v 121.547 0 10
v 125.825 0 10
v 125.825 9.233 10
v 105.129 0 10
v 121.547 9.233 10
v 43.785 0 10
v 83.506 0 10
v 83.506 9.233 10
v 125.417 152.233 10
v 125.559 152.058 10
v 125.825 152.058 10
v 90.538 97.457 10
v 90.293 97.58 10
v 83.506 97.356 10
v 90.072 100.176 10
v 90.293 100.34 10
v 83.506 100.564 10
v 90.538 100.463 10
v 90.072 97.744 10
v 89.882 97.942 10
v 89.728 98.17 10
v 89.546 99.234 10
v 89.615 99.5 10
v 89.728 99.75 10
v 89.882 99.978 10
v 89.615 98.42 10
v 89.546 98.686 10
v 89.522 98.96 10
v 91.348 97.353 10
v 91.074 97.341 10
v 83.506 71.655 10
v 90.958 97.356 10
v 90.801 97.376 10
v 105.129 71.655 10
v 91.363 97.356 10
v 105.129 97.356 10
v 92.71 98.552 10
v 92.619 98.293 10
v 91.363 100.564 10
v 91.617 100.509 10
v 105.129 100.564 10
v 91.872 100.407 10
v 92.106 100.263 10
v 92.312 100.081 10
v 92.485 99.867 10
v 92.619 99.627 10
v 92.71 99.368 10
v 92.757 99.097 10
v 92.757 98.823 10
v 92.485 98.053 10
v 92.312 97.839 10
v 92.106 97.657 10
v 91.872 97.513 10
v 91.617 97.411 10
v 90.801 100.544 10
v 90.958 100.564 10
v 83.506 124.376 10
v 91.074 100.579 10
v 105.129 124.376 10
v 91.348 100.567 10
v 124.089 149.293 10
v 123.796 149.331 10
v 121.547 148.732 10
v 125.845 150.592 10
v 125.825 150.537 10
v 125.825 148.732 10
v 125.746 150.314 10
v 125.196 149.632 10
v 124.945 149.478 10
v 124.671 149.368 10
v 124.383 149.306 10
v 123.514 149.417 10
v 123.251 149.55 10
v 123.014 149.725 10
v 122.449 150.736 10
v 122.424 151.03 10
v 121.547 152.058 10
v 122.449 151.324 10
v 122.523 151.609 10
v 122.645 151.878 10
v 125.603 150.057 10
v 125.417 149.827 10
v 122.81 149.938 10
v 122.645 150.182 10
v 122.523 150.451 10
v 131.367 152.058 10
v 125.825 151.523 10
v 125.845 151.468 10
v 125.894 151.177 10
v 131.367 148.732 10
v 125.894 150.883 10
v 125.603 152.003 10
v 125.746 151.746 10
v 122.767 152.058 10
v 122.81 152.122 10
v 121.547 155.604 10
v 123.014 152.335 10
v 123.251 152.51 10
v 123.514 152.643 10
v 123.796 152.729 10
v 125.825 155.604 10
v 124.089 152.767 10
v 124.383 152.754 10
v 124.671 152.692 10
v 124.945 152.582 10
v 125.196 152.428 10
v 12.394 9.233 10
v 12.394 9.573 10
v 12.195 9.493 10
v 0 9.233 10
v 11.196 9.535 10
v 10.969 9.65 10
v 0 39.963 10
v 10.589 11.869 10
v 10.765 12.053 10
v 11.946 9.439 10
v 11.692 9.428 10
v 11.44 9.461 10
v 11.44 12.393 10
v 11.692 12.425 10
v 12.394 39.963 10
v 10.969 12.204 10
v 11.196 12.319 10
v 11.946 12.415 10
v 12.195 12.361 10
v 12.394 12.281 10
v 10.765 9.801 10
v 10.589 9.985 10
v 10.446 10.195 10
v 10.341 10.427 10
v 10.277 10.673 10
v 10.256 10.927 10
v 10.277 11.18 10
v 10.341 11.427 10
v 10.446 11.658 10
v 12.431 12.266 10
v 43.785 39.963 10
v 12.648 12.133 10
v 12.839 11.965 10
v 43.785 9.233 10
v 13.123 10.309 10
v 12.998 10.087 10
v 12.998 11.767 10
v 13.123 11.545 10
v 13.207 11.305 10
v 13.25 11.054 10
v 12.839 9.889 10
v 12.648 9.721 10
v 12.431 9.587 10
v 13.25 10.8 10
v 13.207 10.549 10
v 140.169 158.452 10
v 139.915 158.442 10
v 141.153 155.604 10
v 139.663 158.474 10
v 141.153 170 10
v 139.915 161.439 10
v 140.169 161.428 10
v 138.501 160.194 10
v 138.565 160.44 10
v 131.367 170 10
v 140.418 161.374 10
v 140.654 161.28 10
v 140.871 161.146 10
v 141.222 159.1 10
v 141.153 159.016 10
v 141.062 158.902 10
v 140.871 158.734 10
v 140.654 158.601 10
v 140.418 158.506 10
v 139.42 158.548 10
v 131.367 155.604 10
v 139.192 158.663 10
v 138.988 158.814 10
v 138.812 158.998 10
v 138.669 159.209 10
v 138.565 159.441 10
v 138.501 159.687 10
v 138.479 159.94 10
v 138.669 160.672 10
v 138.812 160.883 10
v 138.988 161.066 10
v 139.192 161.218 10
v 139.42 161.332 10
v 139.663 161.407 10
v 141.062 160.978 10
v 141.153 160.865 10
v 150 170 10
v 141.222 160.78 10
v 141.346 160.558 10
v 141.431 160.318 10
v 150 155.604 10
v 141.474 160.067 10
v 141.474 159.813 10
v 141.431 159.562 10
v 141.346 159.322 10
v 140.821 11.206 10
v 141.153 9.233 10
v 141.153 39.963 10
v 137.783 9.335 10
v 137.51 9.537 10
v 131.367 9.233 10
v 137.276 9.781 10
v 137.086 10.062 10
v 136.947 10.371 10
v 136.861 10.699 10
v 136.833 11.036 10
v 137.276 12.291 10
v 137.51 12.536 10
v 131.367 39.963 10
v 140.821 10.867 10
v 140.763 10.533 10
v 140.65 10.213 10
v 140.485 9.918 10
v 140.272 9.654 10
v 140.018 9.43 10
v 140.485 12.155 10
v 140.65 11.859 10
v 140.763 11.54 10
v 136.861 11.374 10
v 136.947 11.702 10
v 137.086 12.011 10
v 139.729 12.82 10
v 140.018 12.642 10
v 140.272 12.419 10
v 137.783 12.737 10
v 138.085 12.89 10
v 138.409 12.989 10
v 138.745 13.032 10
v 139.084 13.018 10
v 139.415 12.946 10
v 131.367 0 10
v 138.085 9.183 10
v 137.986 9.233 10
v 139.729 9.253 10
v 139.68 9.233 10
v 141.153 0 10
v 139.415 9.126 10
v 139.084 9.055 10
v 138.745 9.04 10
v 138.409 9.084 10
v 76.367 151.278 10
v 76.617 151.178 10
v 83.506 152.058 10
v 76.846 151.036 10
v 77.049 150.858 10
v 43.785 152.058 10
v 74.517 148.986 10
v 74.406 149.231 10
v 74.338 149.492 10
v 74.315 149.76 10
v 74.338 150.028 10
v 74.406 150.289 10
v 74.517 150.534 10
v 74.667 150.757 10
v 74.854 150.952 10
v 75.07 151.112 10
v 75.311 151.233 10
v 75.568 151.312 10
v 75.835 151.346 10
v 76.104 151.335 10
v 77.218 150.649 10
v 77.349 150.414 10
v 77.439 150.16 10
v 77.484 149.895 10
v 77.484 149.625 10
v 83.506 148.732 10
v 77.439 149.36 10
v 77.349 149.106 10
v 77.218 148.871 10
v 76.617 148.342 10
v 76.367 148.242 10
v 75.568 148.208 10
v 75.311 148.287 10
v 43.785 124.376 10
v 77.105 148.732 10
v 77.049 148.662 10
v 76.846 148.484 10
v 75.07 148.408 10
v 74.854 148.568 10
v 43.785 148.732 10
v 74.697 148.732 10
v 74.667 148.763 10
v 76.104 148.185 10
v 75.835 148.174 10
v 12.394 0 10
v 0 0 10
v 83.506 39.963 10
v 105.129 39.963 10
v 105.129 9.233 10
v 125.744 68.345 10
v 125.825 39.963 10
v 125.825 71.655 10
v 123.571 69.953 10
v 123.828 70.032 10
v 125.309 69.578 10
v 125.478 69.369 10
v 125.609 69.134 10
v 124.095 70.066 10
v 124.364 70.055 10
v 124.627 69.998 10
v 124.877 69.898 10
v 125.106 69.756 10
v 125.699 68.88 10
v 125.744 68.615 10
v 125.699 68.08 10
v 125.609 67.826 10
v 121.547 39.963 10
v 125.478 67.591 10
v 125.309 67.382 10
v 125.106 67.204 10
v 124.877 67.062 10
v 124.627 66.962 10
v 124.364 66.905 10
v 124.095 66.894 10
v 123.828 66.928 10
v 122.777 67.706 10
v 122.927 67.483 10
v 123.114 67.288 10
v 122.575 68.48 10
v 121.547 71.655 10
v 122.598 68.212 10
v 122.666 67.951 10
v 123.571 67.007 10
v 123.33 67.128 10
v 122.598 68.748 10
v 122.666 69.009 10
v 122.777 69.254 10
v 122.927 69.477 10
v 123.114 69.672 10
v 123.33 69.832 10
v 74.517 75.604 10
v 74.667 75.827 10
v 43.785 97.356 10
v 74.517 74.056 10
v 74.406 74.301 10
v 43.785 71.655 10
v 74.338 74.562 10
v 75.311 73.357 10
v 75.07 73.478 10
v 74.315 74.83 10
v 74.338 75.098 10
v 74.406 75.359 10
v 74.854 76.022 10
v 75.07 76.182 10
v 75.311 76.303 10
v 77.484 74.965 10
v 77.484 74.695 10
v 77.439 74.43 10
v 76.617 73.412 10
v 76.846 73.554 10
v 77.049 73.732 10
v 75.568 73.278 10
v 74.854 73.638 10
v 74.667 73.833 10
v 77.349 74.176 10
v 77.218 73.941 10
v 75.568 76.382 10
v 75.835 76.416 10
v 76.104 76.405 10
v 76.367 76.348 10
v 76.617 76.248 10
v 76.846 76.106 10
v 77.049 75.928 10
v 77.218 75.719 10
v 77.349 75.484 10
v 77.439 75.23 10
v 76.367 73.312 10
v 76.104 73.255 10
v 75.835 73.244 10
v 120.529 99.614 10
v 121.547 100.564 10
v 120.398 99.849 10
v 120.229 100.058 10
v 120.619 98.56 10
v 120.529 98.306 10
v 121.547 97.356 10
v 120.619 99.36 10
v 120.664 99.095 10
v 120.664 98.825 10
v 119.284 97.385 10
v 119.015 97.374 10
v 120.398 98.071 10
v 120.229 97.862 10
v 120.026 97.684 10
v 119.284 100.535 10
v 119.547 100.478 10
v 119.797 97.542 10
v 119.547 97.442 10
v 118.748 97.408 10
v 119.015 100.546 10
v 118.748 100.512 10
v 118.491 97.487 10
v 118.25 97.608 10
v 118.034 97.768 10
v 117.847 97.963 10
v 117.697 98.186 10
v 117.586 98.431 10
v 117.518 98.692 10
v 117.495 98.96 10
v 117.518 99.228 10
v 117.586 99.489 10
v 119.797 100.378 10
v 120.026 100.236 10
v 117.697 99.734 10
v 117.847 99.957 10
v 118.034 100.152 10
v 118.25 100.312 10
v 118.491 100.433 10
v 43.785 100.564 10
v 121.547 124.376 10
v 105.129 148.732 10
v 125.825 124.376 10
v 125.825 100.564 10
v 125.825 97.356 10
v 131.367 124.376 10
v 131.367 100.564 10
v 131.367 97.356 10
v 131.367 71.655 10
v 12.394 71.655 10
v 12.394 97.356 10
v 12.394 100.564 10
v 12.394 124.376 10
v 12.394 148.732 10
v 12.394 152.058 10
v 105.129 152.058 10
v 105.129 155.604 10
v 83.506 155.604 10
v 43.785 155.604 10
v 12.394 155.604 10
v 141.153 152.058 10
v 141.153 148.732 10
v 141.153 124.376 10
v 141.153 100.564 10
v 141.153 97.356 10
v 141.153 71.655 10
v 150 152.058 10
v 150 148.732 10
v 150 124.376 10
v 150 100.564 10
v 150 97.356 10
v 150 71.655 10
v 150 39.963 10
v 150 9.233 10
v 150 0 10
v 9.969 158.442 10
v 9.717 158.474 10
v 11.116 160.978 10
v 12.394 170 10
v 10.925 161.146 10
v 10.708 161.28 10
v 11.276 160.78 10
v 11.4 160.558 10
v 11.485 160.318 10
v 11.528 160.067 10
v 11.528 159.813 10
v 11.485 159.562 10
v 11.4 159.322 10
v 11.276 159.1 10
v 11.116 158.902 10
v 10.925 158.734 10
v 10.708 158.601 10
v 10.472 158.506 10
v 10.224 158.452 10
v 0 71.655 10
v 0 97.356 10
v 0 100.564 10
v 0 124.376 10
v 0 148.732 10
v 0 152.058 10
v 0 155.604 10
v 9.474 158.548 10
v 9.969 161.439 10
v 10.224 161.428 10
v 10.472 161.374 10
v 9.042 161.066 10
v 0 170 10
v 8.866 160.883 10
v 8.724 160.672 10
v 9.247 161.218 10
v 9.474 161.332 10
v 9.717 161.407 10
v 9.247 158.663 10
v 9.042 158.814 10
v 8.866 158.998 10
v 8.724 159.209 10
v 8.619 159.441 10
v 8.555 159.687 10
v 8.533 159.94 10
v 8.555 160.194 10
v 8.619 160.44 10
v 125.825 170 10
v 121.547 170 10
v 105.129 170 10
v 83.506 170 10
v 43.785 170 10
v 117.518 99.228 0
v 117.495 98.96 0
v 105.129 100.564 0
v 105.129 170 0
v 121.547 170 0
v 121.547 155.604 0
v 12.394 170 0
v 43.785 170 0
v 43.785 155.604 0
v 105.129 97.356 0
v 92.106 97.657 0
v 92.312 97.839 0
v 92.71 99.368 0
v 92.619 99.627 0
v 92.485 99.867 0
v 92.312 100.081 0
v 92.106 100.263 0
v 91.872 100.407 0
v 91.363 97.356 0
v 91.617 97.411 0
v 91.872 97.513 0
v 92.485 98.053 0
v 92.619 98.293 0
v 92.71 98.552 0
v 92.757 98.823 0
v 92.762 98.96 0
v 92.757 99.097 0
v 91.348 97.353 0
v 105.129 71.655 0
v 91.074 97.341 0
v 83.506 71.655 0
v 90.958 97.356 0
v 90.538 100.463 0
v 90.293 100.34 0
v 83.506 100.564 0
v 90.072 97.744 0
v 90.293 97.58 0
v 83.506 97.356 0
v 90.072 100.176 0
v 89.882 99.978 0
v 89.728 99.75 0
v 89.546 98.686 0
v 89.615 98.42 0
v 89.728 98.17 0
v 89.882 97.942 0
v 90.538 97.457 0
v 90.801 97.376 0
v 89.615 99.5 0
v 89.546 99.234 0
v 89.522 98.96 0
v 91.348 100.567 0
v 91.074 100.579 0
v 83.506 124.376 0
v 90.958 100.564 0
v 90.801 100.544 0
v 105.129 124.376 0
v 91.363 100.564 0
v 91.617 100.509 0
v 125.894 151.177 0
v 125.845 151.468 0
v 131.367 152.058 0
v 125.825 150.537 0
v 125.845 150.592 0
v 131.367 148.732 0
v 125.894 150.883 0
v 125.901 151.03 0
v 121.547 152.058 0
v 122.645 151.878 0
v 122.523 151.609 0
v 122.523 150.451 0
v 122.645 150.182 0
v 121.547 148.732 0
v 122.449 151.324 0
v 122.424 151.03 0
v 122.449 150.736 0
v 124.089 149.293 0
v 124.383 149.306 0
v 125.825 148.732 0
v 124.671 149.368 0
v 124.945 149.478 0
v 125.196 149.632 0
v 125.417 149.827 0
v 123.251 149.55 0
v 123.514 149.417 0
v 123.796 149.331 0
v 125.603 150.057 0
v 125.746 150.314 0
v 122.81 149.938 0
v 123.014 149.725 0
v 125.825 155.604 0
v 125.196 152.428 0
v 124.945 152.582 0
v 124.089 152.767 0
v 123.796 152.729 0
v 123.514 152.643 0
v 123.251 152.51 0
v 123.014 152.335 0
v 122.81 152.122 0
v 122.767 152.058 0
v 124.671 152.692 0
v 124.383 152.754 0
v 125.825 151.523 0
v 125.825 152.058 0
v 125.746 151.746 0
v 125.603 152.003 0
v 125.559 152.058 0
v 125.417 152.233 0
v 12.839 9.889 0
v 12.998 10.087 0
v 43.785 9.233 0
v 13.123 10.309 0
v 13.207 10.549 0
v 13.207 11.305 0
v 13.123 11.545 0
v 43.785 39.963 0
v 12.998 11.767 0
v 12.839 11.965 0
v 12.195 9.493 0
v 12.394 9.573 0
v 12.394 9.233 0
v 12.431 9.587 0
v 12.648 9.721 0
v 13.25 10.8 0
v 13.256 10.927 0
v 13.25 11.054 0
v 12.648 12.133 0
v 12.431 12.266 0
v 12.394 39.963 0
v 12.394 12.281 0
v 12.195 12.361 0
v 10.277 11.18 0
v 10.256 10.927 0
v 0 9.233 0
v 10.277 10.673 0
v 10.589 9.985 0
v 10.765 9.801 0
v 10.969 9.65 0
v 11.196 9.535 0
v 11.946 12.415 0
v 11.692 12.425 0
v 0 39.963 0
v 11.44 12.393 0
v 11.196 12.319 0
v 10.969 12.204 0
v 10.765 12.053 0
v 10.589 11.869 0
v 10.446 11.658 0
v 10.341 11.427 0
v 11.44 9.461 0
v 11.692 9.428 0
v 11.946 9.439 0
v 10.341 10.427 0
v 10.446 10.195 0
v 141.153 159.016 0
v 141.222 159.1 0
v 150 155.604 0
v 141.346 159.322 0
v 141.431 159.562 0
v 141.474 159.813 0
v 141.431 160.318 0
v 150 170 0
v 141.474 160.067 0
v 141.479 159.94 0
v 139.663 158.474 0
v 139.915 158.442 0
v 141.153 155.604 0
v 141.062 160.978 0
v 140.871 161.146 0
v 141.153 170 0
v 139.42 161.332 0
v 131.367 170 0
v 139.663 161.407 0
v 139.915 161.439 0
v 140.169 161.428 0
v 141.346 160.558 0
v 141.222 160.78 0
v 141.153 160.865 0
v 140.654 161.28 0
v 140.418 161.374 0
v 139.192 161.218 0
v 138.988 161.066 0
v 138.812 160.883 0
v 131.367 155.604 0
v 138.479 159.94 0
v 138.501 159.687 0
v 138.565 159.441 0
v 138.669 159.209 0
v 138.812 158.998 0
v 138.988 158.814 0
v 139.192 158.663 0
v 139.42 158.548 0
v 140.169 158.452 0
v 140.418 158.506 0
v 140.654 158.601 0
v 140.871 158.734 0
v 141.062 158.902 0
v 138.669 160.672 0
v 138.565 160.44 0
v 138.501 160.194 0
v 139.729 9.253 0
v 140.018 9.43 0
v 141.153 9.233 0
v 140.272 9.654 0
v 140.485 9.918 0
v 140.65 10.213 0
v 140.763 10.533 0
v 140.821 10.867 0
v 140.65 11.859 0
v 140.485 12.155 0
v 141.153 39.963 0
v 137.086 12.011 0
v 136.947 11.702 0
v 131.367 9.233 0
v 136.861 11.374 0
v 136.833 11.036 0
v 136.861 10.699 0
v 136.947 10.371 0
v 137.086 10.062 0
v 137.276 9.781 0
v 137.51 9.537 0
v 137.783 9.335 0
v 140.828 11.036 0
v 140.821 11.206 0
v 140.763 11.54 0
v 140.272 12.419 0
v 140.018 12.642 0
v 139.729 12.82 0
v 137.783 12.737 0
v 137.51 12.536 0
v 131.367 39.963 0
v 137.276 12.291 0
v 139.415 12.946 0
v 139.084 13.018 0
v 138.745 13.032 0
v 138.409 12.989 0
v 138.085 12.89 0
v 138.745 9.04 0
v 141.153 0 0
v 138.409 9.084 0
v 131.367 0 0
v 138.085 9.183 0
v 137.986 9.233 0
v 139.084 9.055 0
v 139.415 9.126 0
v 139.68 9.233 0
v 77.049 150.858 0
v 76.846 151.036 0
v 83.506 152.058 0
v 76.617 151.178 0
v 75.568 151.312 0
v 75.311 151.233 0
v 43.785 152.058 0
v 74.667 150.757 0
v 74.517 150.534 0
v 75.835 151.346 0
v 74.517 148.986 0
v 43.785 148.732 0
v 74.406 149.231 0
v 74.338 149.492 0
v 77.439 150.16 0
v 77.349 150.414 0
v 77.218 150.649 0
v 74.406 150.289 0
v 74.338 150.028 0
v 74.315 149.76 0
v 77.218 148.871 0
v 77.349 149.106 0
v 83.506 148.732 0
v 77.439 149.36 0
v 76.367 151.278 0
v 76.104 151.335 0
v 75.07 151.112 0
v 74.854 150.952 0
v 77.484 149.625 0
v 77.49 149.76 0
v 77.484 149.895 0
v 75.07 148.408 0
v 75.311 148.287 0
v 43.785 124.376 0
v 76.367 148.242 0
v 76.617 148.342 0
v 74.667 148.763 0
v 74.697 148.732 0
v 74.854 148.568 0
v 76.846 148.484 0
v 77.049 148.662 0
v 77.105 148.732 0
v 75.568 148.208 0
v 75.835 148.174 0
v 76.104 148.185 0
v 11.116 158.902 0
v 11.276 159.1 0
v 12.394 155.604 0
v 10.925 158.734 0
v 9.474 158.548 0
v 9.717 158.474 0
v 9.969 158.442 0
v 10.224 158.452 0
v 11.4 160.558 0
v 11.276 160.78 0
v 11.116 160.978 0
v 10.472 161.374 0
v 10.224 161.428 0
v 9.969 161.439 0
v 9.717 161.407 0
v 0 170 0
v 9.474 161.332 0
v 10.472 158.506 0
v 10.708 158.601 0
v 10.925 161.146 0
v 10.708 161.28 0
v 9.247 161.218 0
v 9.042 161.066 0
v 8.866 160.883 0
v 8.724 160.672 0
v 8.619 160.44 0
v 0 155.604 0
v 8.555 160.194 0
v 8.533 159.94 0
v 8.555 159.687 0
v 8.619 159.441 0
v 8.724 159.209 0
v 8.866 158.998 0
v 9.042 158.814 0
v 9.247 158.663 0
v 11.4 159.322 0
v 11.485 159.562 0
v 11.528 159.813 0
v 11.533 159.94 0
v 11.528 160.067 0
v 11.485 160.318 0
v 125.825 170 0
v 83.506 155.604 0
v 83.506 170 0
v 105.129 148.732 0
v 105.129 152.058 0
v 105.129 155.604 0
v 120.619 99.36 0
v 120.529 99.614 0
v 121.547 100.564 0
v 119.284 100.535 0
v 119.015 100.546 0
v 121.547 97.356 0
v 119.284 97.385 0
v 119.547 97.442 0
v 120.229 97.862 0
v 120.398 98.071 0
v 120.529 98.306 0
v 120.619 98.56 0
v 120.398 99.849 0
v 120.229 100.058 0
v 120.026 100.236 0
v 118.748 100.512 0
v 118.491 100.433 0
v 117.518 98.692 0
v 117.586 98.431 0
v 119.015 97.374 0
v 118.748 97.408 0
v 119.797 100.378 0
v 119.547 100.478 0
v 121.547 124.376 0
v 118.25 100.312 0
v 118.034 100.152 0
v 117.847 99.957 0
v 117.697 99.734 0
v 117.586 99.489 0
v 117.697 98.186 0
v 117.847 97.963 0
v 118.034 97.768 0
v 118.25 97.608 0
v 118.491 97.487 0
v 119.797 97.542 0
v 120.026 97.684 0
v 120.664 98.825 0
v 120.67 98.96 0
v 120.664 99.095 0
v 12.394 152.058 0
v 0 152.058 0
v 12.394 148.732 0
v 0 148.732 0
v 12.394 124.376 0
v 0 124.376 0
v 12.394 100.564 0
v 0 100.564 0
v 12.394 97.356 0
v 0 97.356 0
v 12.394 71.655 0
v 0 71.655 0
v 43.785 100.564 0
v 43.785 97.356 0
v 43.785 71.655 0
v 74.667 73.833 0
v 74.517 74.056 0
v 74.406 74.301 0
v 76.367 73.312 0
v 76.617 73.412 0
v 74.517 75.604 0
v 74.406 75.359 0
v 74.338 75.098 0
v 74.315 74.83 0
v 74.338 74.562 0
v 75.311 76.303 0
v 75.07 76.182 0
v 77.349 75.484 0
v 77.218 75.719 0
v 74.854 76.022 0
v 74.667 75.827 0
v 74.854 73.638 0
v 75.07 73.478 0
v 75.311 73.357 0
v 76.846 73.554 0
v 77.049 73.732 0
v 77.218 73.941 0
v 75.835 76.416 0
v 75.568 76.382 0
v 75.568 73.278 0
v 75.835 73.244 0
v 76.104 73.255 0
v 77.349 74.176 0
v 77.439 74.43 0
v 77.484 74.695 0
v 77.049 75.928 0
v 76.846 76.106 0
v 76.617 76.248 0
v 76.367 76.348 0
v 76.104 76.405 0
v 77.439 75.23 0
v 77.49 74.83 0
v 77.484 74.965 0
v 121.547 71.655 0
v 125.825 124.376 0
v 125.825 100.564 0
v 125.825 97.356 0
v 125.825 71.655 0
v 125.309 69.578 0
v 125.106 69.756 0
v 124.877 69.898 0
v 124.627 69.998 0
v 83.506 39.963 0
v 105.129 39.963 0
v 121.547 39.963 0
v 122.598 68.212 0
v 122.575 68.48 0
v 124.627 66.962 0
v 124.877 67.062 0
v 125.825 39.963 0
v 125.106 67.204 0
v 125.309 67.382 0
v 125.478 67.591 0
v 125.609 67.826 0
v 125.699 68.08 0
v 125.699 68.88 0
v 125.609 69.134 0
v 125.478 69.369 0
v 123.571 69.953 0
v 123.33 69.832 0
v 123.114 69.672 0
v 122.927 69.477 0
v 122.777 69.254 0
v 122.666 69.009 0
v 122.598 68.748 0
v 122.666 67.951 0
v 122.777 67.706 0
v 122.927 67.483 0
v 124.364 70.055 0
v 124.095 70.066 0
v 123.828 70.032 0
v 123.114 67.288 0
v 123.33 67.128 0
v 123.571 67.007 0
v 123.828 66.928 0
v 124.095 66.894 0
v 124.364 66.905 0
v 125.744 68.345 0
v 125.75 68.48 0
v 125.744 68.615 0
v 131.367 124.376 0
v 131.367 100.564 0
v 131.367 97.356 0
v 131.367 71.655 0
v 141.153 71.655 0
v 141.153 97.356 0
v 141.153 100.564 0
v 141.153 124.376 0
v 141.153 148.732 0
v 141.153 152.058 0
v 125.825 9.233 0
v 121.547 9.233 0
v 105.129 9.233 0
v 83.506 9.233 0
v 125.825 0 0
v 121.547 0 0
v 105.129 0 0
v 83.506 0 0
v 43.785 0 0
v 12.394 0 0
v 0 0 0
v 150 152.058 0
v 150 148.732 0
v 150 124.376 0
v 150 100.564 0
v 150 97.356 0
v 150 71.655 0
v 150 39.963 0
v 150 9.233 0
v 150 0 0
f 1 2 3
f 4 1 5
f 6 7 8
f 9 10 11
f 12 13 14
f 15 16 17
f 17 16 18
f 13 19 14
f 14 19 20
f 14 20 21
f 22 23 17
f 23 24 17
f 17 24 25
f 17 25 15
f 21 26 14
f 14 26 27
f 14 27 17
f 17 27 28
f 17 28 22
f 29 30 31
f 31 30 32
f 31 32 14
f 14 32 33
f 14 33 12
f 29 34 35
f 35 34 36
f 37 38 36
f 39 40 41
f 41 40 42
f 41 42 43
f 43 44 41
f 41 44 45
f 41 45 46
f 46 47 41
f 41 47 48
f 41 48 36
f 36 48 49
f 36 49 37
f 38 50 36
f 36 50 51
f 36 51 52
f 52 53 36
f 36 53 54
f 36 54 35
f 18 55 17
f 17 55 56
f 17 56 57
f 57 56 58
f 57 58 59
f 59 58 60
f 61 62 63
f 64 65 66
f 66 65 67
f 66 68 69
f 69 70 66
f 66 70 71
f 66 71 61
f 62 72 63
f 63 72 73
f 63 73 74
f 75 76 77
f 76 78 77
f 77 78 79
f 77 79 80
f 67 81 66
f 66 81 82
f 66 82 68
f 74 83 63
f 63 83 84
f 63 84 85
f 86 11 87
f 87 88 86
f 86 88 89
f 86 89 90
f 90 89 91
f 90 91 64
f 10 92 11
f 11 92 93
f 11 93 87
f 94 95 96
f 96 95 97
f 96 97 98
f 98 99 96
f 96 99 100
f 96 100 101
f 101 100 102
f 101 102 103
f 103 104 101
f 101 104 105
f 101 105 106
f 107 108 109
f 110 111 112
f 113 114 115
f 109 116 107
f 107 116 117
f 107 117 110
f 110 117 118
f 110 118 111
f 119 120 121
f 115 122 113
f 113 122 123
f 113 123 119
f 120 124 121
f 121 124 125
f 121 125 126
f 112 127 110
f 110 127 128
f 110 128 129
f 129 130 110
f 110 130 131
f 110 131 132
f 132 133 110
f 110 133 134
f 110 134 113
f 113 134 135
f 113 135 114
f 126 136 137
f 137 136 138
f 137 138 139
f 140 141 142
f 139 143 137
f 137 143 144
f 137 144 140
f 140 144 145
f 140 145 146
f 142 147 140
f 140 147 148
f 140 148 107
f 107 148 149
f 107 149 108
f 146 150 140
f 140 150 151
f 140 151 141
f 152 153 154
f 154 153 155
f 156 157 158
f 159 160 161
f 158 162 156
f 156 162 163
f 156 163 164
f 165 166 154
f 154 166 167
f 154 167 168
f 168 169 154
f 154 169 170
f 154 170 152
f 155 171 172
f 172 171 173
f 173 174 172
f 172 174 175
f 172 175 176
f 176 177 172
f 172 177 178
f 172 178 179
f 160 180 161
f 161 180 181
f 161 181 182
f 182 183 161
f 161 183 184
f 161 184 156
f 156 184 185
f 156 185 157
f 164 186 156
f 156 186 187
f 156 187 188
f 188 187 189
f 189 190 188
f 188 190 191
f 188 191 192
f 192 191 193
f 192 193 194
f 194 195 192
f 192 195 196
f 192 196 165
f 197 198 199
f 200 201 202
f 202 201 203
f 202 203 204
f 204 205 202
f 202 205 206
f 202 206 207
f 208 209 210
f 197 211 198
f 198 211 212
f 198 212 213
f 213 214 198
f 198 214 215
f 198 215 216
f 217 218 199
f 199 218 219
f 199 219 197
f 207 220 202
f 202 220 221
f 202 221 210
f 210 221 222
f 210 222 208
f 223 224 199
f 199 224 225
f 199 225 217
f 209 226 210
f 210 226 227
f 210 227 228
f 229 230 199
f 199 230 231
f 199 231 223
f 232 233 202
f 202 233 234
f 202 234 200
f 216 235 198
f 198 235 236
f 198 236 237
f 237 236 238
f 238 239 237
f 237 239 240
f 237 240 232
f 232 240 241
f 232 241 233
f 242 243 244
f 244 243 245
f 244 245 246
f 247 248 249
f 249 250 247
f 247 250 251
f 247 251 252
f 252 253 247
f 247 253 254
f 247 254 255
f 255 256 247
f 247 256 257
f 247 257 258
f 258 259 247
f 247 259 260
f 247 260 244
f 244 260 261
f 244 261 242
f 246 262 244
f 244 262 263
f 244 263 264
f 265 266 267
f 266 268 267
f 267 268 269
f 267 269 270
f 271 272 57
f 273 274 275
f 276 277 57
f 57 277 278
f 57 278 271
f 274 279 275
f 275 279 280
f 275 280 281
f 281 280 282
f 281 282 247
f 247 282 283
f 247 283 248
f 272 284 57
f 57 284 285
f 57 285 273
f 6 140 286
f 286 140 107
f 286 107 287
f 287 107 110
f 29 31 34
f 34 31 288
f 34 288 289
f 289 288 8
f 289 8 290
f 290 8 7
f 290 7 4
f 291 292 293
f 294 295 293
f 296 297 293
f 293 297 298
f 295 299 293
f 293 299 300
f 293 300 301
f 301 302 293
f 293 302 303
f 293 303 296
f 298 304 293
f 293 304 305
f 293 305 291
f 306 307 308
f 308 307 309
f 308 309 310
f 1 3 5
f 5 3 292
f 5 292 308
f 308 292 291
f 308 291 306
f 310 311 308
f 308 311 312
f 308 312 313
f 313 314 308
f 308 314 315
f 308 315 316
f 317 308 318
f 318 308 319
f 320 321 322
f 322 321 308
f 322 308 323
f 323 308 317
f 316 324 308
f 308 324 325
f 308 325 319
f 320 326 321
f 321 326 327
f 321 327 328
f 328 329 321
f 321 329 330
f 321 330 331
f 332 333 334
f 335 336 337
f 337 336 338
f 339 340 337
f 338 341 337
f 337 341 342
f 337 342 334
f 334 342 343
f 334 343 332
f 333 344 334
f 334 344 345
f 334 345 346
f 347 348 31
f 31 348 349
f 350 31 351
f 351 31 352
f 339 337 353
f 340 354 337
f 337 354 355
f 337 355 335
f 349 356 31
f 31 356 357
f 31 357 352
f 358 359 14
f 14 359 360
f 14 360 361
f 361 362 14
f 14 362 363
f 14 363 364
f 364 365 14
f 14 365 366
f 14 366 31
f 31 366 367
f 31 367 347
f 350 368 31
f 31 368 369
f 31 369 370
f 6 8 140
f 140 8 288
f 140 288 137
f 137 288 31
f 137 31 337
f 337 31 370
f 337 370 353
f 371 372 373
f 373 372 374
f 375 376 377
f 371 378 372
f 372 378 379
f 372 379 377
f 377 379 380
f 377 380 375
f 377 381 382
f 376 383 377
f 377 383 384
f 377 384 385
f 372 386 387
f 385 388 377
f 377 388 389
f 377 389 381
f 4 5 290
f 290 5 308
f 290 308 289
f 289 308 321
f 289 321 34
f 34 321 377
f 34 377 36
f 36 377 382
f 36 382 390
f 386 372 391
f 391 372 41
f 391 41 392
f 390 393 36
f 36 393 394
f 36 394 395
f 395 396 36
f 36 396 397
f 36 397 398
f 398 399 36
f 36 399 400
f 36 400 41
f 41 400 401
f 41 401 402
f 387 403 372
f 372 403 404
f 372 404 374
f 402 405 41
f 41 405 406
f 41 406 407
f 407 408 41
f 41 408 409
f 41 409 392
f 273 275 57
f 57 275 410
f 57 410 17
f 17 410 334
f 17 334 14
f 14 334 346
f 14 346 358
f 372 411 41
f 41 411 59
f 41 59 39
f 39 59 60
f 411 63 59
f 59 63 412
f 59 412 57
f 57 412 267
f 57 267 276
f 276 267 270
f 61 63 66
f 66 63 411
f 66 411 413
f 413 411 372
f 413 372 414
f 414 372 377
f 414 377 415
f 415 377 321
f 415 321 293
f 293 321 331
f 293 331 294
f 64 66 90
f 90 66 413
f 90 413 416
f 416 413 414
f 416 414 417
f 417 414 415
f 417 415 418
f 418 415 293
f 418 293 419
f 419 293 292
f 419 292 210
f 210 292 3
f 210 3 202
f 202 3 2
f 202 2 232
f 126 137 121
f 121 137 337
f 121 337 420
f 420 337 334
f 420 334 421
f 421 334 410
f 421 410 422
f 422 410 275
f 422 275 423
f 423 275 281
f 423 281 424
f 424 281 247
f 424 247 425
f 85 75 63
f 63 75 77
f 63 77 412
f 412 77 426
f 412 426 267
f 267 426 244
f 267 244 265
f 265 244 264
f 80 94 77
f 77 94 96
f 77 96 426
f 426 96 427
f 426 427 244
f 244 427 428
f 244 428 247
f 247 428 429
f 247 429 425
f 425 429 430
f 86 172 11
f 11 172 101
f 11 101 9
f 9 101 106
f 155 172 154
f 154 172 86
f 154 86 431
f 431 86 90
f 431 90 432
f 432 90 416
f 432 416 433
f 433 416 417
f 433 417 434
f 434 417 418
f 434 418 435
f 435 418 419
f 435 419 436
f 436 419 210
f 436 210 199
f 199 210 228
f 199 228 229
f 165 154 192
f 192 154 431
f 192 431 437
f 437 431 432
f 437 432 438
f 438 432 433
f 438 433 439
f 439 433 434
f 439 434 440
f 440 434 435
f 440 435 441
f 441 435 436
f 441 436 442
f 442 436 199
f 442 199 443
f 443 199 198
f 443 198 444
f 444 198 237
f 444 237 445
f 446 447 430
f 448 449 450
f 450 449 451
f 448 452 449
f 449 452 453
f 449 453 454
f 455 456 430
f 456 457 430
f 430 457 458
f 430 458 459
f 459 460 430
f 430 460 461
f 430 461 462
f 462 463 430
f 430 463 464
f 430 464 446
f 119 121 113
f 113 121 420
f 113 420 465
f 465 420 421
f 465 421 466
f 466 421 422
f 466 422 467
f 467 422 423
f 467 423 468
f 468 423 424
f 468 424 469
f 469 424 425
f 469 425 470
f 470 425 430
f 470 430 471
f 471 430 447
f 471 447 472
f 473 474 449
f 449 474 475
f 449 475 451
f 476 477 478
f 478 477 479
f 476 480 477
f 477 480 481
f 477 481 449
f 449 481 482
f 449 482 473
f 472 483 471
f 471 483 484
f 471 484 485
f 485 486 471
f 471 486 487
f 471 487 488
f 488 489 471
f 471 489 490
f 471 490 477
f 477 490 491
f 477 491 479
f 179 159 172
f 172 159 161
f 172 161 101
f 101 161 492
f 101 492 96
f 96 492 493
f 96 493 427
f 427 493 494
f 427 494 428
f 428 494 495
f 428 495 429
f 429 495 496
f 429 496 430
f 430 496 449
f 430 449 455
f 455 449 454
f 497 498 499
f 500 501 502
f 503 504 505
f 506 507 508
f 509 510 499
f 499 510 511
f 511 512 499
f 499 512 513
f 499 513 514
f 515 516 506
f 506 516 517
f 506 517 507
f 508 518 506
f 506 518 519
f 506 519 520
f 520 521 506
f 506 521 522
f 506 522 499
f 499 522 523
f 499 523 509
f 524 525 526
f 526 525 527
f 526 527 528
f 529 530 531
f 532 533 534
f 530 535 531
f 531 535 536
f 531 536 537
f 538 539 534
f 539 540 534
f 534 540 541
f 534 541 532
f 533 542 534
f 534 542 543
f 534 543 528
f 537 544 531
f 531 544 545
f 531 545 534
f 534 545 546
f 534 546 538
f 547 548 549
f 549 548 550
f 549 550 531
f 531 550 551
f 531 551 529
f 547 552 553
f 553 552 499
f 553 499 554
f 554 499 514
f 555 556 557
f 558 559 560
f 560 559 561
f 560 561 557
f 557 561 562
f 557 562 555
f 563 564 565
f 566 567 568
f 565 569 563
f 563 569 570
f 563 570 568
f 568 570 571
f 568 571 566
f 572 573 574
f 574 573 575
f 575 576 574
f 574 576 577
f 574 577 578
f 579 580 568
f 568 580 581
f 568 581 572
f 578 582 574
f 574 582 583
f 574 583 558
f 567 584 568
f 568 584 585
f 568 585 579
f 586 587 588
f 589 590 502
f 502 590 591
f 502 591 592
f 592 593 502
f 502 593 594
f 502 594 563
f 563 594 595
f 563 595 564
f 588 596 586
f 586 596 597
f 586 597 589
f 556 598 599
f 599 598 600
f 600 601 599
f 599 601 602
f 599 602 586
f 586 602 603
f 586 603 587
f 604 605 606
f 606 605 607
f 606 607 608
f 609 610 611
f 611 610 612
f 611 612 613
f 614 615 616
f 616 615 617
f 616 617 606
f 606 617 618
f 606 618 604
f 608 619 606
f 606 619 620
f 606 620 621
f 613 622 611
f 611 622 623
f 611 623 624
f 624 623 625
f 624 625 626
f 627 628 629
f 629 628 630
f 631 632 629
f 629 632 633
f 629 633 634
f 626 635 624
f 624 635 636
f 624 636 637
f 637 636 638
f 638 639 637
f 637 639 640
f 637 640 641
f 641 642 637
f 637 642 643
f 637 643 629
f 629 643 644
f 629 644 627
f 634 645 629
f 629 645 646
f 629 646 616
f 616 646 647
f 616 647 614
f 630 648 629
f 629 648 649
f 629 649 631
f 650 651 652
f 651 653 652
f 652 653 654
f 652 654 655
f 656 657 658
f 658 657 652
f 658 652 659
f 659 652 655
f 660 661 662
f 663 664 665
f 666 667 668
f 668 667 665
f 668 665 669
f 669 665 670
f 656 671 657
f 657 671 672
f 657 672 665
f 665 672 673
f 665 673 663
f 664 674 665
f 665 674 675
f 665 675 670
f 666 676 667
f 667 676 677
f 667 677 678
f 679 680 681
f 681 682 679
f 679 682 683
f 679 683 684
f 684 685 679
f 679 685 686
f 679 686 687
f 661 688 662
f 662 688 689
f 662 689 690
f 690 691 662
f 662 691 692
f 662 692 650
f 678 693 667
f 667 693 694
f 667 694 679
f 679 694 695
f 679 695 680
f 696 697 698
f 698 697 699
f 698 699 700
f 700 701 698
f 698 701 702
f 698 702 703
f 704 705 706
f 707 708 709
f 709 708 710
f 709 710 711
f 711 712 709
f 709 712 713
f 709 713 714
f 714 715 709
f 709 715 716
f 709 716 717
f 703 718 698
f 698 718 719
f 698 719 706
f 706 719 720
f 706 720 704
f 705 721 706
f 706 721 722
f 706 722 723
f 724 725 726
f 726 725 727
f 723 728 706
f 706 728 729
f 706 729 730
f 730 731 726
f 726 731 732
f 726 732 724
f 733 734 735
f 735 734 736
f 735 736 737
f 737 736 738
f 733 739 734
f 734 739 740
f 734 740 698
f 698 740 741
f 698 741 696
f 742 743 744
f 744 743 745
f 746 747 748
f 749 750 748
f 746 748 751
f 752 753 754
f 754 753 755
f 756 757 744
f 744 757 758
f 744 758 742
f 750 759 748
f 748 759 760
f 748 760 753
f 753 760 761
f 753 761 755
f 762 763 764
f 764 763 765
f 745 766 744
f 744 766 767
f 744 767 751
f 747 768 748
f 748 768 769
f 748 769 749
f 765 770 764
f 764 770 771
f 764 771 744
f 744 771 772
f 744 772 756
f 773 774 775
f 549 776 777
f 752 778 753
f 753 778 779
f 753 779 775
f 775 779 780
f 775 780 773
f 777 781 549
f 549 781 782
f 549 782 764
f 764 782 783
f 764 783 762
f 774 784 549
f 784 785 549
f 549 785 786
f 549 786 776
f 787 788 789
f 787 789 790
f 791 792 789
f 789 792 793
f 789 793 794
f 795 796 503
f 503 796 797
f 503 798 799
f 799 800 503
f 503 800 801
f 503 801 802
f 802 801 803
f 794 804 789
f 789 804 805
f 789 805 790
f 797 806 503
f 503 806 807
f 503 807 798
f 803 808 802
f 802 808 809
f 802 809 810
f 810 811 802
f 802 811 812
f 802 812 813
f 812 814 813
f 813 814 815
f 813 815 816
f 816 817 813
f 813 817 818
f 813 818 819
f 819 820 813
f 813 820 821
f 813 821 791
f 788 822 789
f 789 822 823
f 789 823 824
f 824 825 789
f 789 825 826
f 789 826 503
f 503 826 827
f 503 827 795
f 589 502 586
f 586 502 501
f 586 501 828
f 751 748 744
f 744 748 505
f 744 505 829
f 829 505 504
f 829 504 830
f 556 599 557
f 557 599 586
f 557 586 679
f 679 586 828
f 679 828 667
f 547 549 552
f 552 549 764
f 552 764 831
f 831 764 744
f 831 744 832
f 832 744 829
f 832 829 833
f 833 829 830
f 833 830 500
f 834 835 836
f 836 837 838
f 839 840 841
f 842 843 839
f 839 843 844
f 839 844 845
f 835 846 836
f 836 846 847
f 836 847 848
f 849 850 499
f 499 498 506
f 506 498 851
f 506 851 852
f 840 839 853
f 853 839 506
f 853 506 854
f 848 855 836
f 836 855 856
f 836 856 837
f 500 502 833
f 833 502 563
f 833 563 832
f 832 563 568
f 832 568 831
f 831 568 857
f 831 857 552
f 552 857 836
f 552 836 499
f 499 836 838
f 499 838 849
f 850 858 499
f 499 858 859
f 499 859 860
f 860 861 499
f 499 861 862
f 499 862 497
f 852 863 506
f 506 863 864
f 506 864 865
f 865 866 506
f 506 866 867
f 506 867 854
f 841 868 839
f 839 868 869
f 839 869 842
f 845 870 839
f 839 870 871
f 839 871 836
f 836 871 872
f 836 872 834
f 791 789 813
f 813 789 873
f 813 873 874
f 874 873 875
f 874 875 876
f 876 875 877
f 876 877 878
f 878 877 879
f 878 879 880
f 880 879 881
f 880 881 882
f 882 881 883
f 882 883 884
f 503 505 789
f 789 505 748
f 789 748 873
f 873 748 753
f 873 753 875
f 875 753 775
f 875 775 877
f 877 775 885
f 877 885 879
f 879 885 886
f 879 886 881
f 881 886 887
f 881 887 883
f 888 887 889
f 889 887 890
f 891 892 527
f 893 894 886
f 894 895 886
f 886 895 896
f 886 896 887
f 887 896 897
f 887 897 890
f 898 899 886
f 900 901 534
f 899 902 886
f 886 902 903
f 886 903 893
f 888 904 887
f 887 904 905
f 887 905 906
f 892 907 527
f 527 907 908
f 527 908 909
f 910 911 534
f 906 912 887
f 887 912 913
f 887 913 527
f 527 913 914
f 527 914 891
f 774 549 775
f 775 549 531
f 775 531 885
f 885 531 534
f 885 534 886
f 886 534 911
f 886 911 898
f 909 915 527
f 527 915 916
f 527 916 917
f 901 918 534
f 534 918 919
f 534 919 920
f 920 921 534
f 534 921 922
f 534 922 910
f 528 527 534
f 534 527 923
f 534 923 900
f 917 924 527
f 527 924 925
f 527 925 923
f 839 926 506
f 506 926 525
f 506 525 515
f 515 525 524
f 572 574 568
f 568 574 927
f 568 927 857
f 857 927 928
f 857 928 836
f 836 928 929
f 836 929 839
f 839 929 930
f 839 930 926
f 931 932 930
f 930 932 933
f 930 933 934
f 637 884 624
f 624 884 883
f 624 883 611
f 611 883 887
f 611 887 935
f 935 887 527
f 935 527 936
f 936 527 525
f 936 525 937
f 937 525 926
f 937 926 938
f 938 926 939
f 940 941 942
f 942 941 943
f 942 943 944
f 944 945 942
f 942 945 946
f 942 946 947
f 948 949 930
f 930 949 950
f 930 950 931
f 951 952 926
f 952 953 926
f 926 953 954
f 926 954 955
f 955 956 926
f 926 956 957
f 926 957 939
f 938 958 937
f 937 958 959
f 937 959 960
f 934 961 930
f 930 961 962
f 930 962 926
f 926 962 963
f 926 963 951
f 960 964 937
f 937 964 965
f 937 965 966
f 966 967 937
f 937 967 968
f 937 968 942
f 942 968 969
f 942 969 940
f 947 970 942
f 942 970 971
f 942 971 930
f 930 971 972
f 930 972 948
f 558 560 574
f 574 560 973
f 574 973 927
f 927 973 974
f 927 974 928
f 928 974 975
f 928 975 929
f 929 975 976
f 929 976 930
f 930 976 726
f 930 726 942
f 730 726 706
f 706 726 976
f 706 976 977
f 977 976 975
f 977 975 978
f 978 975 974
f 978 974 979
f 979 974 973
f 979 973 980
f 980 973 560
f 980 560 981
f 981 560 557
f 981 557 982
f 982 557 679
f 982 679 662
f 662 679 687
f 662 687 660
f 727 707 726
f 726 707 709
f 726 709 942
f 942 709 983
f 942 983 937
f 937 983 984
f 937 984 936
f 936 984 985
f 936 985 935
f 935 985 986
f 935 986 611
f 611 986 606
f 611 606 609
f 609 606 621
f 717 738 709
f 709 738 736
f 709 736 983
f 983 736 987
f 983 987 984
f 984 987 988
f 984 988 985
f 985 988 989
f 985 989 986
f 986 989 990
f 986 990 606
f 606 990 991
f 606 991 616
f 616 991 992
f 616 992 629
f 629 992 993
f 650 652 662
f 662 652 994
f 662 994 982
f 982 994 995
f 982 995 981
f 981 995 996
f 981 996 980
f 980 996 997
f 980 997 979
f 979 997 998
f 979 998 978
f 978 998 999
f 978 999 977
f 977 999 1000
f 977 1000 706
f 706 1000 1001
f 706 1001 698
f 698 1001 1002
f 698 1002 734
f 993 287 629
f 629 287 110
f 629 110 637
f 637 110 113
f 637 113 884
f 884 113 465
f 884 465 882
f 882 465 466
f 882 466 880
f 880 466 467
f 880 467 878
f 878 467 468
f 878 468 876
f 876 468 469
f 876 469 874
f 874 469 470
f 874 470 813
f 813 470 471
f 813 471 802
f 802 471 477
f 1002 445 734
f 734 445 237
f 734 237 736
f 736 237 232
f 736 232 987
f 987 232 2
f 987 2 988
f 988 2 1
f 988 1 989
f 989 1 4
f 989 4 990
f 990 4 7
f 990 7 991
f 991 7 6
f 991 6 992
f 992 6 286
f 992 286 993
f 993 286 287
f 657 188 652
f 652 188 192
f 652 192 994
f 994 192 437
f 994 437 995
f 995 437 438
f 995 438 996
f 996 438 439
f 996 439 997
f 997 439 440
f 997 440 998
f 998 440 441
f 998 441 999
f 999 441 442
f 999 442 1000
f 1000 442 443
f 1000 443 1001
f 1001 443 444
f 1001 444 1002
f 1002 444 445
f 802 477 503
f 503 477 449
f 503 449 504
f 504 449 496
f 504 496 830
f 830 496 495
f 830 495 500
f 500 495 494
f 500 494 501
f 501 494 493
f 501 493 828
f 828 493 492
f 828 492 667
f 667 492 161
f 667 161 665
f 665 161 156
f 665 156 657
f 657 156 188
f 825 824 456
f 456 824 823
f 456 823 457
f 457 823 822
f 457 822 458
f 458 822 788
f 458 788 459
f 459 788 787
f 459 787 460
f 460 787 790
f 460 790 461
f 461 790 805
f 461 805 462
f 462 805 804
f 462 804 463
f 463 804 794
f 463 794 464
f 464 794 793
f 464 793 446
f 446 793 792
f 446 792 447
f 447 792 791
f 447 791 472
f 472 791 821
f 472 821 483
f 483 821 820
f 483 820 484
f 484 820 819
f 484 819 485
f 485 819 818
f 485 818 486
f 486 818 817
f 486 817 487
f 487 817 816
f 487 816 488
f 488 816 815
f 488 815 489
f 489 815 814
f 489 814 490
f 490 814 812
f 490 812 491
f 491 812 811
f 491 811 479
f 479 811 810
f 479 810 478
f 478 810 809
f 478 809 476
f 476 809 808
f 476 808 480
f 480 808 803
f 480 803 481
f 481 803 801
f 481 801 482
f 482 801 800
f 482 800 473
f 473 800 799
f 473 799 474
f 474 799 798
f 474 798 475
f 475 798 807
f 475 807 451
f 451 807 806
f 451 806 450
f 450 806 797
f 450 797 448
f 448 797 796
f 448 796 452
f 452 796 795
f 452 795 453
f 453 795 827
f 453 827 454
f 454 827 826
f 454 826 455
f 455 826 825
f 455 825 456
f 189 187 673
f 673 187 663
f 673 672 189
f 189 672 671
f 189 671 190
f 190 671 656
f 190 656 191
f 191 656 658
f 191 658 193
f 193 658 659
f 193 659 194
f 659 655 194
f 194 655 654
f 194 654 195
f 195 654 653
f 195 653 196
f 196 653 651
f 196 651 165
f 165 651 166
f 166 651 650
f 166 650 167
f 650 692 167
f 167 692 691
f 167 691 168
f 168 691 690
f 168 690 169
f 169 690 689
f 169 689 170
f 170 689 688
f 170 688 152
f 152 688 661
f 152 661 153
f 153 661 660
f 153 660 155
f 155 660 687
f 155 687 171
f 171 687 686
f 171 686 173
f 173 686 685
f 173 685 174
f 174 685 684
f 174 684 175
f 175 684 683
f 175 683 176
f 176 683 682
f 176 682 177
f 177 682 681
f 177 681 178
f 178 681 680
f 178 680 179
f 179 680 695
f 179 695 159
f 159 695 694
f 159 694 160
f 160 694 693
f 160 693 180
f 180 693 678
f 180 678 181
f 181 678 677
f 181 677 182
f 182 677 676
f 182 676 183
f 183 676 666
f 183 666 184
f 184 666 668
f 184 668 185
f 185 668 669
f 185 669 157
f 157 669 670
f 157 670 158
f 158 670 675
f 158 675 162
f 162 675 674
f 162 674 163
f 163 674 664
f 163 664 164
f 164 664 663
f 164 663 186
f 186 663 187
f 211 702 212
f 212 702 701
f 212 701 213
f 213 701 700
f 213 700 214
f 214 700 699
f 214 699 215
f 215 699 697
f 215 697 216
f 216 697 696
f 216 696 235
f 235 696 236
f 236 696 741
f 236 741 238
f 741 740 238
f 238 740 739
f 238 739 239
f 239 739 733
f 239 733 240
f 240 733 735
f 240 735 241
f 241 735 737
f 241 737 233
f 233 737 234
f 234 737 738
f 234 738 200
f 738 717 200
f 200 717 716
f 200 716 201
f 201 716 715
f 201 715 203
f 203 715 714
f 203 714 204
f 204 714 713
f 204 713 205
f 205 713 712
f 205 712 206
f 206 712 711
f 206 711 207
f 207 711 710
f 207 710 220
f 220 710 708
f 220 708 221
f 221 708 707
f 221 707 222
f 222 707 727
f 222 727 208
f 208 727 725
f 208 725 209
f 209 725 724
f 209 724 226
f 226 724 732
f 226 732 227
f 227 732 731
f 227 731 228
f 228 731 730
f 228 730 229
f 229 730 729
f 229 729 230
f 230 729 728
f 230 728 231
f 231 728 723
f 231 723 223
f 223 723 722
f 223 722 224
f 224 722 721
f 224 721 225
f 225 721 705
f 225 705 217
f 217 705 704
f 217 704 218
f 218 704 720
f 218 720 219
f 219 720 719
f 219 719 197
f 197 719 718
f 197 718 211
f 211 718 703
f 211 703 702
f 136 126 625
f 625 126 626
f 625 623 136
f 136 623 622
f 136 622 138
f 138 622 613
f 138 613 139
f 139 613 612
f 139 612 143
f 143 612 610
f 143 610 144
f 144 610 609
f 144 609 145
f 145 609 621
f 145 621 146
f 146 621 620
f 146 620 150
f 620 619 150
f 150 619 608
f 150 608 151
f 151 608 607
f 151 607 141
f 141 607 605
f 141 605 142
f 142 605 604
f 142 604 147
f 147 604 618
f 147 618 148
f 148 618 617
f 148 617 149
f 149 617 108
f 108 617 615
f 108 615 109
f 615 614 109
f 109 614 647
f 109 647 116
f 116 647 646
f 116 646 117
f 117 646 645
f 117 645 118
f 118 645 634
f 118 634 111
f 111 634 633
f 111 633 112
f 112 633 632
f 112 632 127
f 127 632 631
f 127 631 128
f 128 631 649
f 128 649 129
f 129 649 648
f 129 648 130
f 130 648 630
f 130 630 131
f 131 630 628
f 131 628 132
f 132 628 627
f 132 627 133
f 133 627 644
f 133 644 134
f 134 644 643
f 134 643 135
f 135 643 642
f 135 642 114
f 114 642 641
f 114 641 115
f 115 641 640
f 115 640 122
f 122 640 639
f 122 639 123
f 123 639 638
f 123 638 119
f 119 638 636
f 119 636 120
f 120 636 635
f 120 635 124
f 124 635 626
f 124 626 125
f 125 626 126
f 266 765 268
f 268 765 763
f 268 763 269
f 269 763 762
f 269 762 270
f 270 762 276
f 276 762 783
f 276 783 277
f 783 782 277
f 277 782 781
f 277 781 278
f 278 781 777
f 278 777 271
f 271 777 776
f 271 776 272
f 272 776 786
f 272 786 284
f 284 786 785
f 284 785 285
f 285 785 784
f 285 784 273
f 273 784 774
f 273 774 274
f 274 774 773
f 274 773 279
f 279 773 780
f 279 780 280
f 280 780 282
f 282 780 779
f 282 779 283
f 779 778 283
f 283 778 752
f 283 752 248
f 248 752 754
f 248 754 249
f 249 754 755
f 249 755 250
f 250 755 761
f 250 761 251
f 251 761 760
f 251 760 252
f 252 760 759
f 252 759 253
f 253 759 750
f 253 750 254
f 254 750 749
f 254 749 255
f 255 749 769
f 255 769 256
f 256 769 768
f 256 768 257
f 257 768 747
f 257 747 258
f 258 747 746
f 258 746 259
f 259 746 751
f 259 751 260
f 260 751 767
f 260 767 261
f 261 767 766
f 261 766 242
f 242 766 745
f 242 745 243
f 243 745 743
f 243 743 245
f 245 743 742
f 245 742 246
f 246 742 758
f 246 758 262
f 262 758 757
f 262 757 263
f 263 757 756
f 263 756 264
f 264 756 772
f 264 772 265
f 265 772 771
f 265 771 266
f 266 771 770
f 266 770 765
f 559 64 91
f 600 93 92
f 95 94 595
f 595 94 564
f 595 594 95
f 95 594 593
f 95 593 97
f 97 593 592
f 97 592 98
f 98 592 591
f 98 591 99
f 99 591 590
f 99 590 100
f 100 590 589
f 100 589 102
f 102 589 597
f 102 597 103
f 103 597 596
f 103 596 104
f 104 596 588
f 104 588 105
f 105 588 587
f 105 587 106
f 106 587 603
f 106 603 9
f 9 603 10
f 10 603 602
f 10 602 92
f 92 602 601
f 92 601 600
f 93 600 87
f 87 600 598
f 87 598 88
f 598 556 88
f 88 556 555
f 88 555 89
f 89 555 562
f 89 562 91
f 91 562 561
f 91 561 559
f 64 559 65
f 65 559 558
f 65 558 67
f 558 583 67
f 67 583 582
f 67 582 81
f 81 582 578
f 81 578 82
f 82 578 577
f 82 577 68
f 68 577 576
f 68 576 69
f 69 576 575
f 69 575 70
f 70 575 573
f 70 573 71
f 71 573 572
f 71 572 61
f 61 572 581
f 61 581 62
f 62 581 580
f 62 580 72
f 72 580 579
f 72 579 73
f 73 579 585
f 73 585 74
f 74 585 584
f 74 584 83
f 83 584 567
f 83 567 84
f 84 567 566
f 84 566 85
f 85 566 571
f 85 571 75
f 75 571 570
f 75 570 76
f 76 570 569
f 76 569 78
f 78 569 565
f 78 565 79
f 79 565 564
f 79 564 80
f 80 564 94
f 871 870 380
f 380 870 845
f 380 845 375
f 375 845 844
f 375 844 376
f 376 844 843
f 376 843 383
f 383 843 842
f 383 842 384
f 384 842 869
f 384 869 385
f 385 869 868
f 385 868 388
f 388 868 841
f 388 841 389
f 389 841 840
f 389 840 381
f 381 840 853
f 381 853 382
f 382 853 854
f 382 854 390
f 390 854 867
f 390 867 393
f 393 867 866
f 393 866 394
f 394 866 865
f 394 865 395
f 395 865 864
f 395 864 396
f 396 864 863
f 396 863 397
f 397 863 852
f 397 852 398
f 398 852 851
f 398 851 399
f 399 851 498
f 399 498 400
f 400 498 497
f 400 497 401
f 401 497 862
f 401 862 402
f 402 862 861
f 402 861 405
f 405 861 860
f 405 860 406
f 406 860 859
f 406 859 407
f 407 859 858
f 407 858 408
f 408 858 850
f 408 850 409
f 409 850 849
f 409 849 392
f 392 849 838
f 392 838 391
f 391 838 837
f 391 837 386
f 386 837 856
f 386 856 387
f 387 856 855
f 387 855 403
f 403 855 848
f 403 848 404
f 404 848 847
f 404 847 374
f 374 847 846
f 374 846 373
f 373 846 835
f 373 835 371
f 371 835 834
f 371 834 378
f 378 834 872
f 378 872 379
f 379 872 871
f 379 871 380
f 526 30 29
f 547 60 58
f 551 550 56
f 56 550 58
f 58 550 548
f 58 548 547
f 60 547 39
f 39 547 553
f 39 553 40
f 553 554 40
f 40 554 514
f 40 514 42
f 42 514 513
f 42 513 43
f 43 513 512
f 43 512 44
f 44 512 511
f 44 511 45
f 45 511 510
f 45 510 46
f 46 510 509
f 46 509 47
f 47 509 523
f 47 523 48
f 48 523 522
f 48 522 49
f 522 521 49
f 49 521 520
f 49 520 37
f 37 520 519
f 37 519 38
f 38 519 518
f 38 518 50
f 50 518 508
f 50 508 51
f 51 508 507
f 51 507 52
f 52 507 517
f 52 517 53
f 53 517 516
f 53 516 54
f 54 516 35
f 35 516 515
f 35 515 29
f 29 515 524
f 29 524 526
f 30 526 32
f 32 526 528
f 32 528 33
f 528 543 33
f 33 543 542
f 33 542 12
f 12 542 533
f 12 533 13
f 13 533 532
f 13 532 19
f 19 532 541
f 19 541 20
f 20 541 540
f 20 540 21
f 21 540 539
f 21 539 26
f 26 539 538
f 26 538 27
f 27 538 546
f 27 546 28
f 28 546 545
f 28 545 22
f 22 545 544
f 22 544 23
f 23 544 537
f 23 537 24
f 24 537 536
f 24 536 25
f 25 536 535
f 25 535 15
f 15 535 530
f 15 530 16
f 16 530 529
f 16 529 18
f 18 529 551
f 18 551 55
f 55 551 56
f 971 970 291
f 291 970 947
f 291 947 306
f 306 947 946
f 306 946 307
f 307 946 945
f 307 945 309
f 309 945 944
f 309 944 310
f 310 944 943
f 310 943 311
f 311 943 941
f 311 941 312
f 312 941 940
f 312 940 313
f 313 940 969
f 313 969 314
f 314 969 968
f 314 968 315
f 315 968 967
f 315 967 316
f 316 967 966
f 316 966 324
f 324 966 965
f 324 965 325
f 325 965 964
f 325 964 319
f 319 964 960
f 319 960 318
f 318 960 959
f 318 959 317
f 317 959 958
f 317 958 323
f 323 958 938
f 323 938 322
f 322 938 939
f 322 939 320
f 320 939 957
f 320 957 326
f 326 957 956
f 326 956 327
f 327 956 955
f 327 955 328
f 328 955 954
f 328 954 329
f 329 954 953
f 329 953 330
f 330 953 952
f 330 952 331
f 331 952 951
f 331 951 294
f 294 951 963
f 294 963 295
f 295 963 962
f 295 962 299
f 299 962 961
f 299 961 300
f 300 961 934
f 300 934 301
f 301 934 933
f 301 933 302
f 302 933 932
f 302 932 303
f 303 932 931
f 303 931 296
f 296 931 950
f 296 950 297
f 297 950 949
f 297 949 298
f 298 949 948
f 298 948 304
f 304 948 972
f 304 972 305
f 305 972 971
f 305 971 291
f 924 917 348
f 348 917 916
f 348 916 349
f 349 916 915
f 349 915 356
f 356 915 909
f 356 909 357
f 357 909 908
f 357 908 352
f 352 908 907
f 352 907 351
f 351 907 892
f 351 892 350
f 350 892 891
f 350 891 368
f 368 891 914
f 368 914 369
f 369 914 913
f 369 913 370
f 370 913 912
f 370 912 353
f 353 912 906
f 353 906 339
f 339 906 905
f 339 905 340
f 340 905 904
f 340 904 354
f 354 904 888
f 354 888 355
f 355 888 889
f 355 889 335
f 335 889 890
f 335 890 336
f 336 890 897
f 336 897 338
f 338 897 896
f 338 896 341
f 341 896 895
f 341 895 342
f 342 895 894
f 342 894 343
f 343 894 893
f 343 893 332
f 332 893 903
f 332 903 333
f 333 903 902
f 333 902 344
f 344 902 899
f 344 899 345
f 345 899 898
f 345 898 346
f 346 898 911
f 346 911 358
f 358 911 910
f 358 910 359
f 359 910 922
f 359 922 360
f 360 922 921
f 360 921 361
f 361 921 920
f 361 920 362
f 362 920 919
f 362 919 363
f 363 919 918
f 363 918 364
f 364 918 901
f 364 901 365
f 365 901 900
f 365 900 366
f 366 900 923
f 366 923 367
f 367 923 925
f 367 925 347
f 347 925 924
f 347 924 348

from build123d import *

# Parameters (mm, degrees)
ESBO_O1_W                = 150
ESBO_O1_H                = 170
RESSALTO_EXTRUS_O1_DEPTH = 10
ESBO_O2_R                = 1.5
ESBO_O2_R_2              = 1.997604937
ESBO_O2_R_3              = 1.5875
ESBO_O2_R_4              = 1.73833982
ESBO_O2_R_5              = 1.620055507
CORTE_EXTRUS_O1_DEPTH    = 46


with BuildPart() as part:
    # Esboço1 → Ressalto-extrusão1 (new body)
    with BuildSketch(Plane.XY):
        with Locations((75, 85)):
            Rectangle(ESBO_O1_W, ESBO_O1_H)
    extrude(amount=RESSALTO_EXTRUS_O1_DEPTH)

    # Esboço2 → Corte-extrusão1 (cut)
    with BuildSketch(Plane.XY):
        with Locations(Location((10.033029316, 159.94021292, 0), (0, 0, 180))):
            Circle(ESBO_O2_R)
        with Locations(Location((139.978914047, 159.94021292, 0), (0, 0, 180))):
            Circle(ESBO_O2_R)
        with Locations(Location((138.830146036, 11.036291662, 0), (0, 0, 180))):
            Circle(ESBO_O2_R_2)
        with Locations(Location((11.755699431, 10.926833837, 0), (0, 0, 180))):
            Circle(ESBO_O2_R)
        with Locations(Location((75.902413193, 149.76, 0), (0, 0, 180))):
            Circle(ESBO_O2_R_3)
        with Locations(Location((124.162413193, 151.03, 0), (0, 0, 180))):
            Circle(ESBO_O2_R_4)
        with Locations(Location((119.082413193, 98.96, 0), (0, 0, 180))):
            Circle(ESBO_O2_R_3)
        with Locations(Location((91.142413193, 98.96, 0), (0, 0, 180))):
            Circle(ESBO_O2_R_5)
        with Locations(Location((124.162413193, 68.48, 0), (0, 0, 180))):
            Circle(ESBO_O2_R_3)
        with Locations(Location((75.902413193, 74.83, 0), (0, 0, 180))):
            Circle(ESBO_O2_R_3)
    extrude(amount=CORTE_EXTRUS_O1_DEPTH, mode=Mode.SUBTRACT)


solid = part.part
